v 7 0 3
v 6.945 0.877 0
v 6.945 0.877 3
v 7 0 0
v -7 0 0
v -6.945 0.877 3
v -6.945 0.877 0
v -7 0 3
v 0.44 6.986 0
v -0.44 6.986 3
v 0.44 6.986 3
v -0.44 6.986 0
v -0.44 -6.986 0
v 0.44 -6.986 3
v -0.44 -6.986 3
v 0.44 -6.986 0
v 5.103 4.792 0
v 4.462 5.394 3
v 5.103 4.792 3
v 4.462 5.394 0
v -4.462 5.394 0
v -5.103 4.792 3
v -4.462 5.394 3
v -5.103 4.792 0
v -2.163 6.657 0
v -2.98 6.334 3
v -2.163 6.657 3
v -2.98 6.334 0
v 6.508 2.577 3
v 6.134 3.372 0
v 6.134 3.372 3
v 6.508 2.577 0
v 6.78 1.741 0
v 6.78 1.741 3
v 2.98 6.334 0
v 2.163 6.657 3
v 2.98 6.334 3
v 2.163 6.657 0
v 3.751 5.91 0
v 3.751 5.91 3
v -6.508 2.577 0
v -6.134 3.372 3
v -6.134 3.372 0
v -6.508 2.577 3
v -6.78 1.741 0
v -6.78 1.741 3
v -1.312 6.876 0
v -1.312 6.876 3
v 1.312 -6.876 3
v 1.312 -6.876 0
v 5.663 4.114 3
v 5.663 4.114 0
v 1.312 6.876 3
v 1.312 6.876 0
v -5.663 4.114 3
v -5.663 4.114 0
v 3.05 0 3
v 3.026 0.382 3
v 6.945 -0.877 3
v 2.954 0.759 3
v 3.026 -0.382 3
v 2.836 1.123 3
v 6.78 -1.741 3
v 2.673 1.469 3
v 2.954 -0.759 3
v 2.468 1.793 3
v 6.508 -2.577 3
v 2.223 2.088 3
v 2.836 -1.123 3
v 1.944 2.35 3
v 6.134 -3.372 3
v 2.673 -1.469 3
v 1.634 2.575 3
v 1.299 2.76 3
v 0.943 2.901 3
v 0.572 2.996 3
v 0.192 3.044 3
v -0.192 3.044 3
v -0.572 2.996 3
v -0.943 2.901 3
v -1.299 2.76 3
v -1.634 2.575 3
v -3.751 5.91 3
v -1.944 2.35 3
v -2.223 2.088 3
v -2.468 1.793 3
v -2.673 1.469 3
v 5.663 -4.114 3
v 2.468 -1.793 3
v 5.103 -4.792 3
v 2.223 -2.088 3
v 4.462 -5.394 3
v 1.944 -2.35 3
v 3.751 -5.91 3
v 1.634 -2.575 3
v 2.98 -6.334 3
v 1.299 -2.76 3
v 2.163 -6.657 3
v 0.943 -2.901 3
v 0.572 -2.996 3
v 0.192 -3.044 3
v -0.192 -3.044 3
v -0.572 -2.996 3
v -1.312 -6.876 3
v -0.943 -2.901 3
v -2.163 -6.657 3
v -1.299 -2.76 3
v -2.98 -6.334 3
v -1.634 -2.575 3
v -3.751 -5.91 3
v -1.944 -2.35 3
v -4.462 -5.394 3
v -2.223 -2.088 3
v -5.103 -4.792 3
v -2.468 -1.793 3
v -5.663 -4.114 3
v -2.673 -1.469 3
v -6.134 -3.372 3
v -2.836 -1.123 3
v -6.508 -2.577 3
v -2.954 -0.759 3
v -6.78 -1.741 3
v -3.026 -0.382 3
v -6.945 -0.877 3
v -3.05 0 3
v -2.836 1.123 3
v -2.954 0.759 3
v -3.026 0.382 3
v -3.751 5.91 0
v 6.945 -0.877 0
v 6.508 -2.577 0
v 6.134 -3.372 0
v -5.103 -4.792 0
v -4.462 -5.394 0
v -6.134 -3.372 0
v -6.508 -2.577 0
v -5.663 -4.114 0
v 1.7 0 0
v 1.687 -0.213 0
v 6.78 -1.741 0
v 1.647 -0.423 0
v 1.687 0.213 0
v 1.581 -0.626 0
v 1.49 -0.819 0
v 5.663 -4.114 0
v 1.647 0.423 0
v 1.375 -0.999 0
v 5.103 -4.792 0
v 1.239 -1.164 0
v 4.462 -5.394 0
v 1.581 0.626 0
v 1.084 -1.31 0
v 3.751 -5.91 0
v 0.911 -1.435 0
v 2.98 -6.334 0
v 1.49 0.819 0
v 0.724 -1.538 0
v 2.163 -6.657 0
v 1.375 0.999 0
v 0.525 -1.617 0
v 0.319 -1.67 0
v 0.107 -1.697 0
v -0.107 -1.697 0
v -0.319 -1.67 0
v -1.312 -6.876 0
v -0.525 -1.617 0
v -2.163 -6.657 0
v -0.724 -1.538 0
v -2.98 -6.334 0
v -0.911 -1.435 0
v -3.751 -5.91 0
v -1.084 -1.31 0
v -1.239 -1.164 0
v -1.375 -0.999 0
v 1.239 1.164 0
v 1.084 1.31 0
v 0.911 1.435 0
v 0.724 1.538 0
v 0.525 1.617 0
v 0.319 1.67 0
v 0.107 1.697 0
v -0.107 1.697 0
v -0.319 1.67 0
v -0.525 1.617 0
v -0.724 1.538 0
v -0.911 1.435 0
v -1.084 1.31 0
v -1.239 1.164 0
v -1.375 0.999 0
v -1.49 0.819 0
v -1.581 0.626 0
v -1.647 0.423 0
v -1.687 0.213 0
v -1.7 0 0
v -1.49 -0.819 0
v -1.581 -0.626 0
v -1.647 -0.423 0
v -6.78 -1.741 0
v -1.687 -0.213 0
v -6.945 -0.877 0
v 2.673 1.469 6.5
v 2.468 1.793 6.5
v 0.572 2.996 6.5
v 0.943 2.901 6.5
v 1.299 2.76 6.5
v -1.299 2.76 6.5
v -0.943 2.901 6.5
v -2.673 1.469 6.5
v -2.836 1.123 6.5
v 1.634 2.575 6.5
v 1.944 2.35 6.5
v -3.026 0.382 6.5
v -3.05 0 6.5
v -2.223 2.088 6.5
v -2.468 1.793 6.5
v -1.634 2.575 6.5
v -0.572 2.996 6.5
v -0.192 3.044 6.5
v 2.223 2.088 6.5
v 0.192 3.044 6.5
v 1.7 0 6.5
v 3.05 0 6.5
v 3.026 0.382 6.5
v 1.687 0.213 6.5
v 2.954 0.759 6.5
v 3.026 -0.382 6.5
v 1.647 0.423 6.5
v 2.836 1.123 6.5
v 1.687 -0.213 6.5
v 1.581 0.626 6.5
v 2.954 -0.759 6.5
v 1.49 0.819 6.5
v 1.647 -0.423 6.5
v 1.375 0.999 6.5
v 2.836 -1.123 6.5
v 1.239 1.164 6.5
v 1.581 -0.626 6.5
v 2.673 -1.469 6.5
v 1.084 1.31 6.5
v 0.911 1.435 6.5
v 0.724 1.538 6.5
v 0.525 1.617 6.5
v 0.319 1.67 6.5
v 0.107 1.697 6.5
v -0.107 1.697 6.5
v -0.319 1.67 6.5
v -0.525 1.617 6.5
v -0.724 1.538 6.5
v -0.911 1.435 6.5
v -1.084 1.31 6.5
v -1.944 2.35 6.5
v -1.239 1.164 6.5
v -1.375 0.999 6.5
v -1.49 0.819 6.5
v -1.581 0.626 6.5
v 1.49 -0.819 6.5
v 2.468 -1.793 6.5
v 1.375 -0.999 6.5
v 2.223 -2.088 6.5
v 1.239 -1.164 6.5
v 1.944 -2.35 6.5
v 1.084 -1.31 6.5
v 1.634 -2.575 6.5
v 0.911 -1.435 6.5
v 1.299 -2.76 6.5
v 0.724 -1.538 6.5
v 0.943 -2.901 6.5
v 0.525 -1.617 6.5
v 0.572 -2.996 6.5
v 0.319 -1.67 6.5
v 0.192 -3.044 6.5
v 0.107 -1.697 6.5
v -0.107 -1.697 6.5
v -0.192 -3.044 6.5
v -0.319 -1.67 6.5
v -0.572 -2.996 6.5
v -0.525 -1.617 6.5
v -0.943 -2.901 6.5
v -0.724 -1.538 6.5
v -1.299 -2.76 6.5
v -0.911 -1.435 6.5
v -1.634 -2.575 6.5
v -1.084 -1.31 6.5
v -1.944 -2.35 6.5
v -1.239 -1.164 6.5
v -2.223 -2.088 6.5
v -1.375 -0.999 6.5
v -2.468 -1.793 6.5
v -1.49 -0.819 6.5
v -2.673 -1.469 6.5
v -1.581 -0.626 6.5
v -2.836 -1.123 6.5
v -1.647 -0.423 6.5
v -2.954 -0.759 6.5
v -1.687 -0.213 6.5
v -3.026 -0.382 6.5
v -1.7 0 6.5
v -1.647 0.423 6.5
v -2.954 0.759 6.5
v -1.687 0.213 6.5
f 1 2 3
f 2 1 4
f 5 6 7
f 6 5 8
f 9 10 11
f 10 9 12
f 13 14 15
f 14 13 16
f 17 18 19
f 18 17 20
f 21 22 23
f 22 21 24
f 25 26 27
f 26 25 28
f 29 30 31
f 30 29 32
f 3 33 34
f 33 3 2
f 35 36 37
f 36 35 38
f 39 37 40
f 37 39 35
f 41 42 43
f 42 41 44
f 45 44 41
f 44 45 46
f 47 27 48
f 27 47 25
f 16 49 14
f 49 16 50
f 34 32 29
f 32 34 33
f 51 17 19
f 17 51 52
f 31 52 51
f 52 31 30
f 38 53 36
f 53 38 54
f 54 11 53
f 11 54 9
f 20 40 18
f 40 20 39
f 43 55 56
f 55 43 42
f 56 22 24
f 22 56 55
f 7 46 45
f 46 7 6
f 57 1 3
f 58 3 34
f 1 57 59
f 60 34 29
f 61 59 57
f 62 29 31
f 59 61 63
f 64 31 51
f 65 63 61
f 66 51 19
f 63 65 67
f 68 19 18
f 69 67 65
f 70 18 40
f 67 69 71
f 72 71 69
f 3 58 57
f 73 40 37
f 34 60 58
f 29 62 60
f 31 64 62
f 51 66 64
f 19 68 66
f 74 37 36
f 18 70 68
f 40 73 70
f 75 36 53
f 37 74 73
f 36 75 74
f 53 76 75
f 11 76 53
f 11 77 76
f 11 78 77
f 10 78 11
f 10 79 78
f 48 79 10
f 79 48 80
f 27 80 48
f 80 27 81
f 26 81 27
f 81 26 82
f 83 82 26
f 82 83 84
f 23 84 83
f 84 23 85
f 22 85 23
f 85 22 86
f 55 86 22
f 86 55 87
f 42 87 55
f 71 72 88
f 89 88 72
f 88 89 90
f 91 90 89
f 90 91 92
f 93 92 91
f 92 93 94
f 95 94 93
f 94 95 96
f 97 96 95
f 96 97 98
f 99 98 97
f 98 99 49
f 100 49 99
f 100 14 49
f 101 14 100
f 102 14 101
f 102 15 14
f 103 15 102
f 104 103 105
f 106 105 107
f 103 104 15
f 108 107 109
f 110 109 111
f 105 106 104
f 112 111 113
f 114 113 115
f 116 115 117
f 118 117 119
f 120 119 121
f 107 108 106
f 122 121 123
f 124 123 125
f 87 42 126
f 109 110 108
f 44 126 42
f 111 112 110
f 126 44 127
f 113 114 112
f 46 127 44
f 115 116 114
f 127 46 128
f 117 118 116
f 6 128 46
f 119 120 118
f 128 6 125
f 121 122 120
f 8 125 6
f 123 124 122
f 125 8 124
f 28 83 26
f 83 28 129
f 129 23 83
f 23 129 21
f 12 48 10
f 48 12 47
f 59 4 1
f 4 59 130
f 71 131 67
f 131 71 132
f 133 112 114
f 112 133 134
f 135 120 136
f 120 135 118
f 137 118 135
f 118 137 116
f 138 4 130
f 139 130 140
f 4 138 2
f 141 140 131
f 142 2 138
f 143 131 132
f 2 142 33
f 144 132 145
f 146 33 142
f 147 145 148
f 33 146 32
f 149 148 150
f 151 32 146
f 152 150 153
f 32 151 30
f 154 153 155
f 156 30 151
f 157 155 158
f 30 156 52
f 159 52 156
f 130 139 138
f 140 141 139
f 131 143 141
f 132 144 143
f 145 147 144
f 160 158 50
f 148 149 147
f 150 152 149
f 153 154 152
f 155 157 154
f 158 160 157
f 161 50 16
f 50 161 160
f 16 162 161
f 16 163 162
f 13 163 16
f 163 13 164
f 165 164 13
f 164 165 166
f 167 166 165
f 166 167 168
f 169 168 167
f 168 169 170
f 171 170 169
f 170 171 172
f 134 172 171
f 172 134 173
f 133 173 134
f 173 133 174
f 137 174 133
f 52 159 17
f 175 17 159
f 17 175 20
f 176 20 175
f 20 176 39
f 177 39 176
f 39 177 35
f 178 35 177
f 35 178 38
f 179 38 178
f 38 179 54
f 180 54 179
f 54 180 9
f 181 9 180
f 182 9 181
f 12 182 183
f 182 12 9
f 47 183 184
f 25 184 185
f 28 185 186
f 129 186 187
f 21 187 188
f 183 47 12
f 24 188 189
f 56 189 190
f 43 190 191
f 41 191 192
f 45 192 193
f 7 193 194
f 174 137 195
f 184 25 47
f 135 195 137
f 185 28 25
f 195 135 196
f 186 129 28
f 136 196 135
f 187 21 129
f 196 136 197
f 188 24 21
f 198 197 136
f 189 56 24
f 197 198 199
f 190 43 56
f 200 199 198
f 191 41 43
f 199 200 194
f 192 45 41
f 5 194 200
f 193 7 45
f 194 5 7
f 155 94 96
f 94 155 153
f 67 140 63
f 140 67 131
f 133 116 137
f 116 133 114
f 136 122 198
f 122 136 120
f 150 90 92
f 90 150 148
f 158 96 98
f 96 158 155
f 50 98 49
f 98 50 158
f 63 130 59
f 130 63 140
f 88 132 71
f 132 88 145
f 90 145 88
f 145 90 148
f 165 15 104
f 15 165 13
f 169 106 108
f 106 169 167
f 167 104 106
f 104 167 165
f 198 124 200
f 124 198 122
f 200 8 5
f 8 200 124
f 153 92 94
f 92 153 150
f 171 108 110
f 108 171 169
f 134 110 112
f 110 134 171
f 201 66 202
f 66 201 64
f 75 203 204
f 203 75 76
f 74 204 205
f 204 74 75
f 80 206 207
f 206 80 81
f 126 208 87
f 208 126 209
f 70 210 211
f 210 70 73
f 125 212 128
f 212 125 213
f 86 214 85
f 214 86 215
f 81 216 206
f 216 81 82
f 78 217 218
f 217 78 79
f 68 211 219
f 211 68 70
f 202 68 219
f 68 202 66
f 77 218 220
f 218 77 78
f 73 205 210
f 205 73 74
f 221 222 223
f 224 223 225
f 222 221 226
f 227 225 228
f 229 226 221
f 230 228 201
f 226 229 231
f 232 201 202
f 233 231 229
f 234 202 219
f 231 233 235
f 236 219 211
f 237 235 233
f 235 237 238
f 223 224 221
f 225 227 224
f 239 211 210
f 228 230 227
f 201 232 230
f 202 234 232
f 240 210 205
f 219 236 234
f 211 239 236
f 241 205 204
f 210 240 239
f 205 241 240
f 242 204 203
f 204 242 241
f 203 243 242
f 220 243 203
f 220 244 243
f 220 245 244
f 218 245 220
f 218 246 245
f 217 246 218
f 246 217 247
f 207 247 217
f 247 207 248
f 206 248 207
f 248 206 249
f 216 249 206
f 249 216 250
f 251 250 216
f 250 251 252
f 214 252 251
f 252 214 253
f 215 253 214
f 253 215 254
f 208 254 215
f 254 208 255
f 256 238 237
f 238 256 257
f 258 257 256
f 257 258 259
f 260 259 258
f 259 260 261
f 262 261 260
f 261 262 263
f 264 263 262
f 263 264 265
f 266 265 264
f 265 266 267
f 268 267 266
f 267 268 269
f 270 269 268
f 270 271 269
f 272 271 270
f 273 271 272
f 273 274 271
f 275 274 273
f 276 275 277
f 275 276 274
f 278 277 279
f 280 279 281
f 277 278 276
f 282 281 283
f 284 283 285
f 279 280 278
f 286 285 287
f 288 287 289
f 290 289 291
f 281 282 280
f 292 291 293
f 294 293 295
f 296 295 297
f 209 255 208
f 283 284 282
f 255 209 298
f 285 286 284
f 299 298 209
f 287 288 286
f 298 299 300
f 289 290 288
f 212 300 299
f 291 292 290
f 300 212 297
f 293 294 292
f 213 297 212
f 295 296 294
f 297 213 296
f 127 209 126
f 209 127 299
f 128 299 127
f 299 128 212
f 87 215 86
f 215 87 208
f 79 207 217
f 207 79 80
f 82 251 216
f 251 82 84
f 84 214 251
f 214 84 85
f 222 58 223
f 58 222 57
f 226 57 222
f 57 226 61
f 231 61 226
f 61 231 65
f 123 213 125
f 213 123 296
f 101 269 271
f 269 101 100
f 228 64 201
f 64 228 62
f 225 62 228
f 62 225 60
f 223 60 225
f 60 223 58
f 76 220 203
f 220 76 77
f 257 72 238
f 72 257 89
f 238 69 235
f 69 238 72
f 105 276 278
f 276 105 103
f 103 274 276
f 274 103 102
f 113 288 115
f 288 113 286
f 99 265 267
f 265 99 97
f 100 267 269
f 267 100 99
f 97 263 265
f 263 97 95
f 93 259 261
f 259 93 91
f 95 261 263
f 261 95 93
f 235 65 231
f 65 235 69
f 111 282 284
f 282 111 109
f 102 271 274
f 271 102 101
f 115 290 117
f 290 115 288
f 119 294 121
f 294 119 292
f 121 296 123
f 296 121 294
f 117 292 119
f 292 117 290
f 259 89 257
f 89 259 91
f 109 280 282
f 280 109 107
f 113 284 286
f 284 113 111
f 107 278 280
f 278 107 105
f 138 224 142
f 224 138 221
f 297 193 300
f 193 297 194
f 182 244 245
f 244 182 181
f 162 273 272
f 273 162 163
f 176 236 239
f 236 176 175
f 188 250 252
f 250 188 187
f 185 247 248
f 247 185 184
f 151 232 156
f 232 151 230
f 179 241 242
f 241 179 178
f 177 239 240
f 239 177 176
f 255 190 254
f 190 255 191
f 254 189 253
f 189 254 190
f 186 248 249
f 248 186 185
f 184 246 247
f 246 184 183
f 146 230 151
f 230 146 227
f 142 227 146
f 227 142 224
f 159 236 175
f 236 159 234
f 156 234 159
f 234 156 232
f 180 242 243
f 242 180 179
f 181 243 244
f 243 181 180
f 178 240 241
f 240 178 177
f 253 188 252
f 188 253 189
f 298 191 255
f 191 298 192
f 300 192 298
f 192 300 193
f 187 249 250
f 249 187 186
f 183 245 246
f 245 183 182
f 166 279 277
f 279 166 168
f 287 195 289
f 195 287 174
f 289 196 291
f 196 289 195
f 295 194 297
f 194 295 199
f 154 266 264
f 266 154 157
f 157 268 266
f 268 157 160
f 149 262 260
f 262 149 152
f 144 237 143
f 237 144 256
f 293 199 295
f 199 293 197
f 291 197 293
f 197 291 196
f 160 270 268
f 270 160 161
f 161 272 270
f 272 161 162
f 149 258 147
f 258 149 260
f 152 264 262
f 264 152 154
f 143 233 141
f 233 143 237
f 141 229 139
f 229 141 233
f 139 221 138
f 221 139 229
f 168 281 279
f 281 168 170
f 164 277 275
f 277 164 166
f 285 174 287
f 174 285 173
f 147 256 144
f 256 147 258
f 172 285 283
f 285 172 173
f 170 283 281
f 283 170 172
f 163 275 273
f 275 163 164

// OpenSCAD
$fn = 50;


difference() {
	union() {
		translate(v = [0, 0, 0]) {
			rotate(a = [0, 0, 0]) {
				cylinder(h = 3, r = 7.0000000000);
			}
		}
		translate(v = [0, 0, 0]) {
			rotate(a = [0, 0, 0]) {
				cylinder(h = 6.5000000000, r = 3.0500000000);
			}
		}
	}
	union() {
		translate(v = [0, 0, -125.0000000000]) {
			rotate(a = [0, 0, 0]) {
				cylinder(h = 250, r = 1.7000000000);
			}
		}
	}
}
